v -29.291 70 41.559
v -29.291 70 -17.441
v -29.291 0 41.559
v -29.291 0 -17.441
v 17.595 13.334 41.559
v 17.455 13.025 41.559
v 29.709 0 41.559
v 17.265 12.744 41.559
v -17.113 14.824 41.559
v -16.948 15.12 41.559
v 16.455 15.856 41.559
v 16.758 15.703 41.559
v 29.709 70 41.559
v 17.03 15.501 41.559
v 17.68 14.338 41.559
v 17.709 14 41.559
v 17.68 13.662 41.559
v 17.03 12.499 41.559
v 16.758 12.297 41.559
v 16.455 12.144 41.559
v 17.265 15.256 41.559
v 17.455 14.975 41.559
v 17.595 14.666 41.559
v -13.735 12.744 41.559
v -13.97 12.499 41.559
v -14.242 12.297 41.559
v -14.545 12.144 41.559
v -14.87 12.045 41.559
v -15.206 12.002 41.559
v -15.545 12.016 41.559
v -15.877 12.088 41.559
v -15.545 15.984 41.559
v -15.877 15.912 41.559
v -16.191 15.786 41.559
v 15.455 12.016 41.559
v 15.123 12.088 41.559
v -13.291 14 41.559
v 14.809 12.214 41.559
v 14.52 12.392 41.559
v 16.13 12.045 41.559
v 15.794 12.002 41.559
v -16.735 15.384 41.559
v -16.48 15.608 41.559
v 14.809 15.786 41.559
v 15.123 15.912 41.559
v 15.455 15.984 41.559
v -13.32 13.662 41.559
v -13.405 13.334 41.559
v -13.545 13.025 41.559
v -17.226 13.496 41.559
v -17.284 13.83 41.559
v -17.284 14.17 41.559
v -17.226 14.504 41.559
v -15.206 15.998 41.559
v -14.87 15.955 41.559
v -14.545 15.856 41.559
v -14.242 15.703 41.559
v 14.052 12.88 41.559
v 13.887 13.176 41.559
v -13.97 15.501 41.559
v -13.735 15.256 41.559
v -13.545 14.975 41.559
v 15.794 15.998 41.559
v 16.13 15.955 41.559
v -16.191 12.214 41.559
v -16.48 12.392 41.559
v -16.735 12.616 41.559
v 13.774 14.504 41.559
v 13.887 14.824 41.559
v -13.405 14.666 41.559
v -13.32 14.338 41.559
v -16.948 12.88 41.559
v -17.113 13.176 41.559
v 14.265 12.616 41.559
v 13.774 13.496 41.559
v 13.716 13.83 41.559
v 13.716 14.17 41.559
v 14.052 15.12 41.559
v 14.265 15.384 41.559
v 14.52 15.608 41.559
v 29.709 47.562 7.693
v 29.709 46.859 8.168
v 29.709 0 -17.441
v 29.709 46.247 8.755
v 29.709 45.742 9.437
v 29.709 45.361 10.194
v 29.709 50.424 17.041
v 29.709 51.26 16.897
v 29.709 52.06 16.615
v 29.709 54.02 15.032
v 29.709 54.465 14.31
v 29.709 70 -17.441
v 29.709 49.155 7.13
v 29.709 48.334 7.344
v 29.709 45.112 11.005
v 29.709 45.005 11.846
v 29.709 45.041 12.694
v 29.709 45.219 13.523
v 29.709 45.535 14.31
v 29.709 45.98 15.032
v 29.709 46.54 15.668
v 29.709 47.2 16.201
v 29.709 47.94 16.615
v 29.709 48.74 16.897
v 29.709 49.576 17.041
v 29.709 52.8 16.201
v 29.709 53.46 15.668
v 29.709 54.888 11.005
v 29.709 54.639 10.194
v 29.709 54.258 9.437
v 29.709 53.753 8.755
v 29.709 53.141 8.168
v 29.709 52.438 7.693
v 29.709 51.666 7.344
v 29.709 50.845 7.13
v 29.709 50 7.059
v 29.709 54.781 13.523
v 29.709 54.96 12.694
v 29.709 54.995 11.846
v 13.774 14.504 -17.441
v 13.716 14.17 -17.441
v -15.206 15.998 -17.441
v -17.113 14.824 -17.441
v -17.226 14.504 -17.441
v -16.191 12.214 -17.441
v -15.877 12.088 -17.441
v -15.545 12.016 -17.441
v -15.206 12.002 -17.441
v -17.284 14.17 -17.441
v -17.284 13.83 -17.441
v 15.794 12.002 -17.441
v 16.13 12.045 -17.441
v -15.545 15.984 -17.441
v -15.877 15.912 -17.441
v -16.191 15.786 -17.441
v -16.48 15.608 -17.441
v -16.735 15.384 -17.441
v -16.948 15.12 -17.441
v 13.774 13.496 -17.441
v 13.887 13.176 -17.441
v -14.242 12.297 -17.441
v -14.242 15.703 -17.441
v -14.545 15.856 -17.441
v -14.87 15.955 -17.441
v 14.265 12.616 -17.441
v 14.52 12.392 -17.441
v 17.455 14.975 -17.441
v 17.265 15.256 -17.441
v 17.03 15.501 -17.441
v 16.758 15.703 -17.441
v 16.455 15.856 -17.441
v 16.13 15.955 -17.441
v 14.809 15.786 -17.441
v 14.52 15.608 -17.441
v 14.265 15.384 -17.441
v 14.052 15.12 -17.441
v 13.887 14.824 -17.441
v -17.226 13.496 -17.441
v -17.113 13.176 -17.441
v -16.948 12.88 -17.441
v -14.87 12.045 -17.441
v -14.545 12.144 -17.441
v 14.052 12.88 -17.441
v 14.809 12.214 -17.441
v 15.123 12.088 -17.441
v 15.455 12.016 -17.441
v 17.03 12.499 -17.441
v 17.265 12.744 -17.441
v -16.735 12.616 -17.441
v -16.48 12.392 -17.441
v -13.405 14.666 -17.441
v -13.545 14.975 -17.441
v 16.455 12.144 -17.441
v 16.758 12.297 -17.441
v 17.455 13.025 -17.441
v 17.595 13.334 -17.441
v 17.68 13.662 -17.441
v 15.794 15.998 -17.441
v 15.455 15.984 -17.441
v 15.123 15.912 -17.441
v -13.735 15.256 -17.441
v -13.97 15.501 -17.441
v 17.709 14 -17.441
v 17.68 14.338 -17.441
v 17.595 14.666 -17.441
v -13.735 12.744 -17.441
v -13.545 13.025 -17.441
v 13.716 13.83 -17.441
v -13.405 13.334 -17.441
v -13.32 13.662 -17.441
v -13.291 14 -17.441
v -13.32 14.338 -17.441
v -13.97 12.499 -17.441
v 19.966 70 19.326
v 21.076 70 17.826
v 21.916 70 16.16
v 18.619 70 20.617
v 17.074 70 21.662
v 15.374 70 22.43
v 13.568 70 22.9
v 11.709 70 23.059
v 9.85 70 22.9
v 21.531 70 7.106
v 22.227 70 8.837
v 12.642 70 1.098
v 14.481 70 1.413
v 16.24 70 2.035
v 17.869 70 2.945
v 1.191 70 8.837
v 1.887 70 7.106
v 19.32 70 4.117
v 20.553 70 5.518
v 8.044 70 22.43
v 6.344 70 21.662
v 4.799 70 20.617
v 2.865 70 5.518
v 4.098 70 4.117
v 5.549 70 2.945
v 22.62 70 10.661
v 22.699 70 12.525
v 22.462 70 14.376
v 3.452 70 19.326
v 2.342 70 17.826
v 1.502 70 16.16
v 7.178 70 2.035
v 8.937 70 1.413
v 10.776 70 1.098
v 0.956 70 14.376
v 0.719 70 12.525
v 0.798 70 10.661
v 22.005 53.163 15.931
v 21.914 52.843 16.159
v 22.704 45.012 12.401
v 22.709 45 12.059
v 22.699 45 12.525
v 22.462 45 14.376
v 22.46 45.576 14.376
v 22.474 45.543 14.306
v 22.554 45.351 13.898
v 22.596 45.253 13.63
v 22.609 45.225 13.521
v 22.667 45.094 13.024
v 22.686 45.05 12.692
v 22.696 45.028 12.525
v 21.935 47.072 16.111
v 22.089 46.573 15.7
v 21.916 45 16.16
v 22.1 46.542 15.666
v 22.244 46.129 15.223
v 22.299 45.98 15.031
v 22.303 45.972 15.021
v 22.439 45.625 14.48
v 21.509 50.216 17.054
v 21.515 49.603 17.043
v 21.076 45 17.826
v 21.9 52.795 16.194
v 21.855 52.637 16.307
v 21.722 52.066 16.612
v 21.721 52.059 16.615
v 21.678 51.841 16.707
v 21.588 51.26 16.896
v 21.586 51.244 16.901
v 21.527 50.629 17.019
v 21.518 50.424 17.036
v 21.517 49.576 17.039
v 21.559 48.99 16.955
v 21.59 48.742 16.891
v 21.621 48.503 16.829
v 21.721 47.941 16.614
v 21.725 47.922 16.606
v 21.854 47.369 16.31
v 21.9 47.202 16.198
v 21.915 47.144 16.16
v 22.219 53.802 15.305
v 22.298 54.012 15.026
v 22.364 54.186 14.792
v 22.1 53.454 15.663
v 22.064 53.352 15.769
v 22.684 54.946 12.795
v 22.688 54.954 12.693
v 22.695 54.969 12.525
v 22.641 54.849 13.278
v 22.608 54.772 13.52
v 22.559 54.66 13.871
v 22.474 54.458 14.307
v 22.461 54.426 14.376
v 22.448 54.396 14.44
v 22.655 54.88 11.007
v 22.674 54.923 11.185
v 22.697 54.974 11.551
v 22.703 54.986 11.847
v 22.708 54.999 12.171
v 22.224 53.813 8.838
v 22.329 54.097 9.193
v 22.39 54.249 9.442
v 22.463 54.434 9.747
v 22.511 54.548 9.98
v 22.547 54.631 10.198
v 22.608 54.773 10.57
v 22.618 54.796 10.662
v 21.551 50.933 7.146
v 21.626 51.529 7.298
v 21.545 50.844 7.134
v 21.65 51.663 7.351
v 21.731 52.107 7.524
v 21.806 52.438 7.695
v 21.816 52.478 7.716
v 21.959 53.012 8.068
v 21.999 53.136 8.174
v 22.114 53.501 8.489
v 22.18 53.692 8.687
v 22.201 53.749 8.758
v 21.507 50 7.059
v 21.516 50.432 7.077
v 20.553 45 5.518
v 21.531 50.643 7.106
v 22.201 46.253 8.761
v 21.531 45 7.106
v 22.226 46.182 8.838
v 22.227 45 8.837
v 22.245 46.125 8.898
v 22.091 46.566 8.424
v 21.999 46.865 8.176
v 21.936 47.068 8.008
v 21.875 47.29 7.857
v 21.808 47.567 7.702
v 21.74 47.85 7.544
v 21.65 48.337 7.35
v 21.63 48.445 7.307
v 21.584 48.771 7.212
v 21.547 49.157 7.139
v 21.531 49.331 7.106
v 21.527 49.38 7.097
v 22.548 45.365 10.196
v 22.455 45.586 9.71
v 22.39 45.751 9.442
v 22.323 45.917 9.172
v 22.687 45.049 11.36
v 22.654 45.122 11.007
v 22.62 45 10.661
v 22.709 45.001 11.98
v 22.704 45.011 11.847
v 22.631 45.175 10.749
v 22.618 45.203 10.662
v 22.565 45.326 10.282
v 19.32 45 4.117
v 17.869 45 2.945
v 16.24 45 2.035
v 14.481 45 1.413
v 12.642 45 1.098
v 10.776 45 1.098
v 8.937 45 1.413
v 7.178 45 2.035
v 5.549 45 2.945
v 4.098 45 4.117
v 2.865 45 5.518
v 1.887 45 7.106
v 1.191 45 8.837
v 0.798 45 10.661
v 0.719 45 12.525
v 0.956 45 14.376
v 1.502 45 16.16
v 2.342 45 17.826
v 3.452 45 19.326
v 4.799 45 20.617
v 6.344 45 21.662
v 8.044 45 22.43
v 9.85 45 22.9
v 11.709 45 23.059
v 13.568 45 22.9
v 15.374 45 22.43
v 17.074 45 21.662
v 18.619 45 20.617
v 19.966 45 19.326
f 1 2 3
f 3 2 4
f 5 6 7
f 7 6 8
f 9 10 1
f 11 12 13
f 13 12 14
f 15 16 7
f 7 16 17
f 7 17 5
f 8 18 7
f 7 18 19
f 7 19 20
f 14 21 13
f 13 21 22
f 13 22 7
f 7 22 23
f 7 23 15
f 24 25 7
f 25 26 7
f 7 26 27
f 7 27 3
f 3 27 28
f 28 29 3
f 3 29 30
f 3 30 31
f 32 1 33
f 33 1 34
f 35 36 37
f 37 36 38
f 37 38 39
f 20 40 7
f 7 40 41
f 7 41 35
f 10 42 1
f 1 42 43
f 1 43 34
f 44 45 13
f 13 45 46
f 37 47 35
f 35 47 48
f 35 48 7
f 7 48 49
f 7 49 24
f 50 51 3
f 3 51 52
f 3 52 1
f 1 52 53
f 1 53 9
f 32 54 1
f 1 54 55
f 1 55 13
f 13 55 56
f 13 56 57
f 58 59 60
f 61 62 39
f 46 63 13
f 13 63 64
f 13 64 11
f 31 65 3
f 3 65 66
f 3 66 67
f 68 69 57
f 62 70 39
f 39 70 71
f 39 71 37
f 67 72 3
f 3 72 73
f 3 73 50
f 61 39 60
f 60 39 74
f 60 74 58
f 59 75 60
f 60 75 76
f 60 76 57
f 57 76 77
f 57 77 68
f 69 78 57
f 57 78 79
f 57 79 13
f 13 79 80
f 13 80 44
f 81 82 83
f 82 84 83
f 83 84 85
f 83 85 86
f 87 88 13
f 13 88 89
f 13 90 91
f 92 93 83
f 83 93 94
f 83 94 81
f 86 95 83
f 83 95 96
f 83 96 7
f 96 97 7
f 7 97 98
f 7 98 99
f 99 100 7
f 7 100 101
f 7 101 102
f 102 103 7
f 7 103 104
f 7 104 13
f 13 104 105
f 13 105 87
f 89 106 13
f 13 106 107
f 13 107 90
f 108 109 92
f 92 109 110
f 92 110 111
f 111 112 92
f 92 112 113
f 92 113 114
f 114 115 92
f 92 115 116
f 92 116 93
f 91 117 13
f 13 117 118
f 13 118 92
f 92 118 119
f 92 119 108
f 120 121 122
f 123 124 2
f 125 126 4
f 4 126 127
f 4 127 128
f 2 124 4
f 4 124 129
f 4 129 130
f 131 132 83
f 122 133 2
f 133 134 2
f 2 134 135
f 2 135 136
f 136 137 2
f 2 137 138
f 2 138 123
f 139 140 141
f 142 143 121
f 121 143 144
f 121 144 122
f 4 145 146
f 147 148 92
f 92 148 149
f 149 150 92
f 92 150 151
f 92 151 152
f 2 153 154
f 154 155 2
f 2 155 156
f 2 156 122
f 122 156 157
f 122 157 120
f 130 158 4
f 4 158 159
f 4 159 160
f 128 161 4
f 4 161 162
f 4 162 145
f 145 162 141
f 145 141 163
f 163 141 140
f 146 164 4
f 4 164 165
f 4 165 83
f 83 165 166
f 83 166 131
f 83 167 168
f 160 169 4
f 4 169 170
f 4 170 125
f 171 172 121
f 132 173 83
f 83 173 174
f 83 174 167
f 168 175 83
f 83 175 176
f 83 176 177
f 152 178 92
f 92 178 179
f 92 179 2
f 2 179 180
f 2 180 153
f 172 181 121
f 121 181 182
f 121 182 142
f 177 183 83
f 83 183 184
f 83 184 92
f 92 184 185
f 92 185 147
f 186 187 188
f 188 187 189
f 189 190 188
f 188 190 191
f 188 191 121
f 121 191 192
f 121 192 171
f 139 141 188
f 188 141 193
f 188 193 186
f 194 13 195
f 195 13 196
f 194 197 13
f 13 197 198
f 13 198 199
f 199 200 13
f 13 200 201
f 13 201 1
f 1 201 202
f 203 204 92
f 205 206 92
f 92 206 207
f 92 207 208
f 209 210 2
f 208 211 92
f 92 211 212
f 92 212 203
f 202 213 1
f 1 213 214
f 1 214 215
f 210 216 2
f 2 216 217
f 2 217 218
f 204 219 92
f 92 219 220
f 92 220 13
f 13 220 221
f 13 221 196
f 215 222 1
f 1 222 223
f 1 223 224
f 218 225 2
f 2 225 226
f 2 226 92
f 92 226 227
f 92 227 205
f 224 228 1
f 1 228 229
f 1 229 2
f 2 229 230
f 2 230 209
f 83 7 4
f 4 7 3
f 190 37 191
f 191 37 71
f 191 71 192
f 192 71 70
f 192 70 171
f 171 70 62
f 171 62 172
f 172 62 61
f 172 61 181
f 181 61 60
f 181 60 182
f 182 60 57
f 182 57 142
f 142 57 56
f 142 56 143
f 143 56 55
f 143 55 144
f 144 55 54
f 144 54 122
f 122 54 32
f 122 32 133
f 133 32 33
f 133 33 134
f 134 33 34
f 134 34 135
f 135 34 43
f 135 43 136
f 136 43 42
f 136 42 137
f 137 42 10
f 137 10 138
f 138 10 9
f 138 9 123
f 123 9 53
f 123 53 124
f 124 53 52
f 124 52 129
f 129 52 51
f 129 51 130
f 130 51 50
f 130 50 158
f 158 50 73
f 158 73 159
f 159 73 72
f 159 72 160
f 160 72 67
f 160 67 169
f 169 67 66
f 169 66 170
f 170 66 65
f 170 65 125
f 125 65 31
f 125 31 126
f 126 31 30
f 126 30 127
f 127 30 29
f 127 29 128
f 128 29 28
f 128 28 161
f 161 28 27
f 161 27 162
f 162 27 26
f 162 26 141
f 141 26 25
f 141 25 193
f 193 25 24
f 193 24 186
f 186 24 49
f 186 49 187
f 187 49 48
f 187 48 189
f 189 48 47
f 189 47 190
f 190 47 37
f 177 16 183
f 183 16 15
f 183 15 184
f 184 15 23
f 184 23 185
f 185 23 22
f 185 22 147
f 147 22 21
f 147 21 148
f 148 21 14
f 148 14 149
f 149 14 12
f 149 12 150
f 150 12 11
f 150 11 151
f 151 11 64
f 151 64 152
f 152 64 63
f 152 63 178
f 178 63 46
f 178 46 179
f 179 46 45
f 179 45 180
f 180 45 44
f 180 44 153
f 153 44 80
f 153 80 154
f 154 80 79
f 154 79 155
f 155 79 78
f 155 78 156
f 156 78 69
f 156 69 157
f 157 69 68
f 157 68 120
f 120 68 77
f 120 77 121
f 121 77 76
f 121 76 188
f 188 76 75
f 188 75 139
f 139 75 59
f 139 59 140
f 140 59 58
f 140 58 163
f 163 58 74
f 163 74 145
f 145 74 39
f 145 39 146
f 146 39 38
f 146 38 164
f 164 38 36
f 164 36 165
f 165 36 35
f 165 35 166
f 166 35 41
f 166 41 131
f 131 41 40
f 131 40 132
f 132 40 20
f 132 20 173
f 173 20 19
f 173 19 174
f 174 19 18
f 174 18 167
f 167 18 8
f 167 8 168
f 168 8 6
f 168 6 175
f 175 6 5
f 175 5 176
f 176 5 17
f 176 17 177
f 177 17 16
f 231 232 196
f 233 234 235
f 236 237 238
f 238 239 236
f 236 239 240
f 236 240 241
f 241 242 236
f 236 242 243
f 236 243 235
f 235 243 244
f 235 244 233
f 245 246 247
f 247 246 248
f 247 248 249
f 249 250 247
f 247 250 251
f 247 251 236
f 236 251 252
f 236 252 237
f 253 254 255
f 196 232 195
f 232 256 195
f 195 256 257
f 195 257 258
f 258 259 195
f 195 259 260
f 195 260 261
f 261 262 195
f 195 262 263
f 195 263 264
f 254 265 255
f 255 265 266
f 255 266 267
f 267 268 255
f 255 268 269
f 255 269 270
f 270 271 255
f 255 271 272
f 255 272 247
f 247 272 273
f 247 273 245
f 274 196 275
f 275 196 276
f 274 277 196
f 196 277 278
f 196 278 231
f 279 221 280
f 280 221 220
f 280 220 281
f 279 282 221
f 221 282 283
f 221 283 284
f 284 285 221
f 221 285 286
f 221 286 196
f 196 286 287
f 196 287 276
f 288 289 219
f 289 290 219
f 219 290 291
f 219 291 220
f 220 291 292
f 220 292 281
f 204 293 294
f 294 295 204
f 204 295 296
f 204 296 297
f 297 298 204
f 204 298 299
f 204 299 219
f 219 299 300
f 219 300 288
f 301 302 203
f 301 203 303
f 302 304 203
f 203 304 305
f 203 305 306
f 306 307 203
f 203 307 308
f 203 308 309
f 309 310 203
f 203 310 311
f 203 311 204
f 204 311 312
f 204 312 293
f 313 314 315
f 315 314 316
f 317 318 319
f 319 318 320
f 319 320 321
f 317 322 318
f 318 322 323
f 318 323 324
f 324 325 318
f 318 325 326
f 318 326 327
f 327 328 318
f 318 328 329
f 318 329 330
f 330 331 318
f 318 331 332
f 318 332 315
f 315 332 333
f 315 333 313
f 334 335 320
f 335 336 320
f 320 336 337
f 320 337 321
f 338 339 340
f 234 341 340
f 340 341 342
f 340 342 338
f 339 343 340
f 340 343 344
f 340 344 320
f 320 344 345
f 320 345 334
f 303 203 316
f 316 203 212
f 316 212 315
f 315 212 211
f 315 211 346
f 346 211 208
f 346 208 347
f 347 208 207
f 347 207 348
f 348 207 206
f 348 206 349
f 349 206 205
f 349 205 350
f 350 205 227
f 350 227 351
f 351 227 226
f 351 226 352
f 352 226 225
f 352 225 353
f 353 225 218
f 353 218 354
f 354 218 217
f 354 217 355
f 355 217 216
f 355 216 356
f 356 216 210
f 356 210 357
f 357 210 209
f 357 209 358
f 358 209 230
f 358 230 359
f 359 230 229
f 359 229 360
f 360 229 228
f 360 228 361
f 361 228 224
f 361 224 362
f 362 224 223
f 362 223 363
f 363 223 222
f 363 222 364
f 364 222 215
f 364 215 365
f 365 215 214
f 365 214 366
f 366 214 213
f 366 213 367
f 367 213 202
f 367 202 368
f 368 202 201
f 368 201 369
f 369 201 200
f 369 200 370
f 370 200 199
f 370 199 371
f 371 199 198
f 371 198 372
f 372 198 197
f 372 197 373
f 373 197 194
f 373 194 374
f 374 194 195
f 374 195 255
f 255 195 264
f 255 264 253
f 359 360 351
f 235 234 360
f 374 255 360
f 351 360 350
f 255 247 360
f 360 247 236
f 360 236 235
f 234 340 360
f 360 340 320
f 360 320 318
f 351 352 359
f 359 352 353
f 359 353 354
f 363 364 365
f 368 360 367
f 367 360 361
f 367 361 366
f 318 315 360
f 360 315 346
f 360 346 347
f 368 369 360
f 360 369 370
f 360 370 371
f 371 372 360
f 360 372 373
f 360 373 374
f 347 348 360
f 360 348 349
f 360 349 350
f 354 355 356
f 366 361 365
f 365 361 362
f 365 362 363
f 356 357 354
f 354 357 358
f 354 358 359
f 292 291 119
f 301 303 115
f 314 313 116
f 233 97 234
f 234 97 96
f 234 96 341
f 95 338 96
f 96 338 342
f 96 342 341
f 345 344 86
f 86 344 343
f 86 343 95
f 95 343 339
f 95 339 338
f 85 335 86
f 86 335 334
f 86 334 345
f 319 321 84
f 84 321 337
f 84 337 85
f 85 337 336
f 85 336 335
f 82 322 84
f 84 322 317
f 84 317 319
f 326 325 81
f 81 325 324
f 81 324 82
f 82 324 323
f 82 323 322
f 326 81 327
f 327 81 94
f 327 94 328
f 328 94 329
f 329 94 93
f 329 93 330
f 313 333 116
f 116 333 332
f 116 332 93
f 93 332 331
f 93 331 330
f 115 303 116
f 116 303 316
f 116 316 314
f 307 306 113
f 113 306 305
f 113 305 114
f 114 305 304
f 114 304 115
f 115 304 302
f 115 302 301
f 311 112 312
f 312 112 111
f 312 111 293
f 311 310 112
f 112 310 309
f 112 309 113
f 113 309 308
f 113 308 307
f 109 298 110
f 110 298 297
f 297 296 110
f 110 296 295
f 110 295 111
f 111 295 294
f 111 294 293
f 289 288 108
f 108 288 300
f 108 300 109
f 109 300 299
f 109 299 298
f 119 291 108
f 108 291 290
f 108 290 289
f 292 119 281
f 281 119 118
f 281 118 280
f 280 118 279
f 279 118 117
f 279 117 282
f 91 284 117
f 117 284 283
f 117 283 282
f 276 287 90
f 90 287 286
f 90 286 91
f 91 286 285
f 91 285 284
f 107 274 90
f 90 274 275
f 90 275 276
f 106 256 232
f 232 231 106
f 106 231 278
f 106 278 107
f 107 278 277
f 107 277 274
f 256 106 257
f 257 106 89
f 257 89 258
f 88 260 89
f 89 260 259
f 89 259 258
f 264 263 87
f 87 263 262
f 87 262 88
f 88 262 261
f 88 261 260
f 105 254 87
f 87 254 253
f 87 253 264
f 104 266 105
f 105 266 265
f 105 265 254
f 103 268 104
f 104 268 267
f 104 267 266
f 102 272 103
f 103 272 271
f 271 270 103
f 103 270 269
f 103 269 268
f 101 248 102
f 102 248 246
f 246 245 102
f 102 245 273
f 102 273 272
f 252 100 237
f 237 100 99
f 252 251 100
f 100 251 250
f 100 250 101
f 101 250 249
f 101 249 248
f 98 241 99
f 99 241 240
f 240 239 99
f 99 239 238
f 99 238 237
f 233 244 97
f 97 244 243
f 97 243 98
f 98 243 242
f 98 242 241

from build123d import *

# Parameters (mm, degrees)
ESQUISSE1_W             = 59
ESQUISSE1_H             = 59
BOSS_EXTRU_1_DEPTH      = 70
ENL_V_MAT_EXTRU_1_REACH = 61
ESQUISSE2_R             = 2
ESQUISSE3_R             = 11
ENL_V_MAT_EXTRU_2_DEPTH = 25
ENL_V_MAT_EXTRU_3_REACH = 61
ESQUISSE4_R             = 5


with BuildPart() as part:
    # Esquisse1 → Boss.-Extru.1 (new body)
    with BuildSketch(Plane(origin=(0, 0, 0), x_dir=(1, 0, 0), z_dir=(0, 1, 0))):
        with Locations((0.20896915, -12.058522539)):
            Rectangle(ESQUISSE1_W, ESQUISSE1_H)
    extrude(amount=BOSS_EXTRU_1_DEPTH)

    # Esquisse2 → Enlèv. mat.-Extru.1 (cut, up to next)
    with BuildSketch(Plane.XY.offset(41.558522539), mode=Mode.PRIVATE) as enl_v_mat_extru_1_sk1:
        with Locations((-15.29103085, 14)):
            Circle(ESQUISSE2_R)
    enl_v_mat_extru_1_tool1 = extrude(enl_v_mat_extru_1_sk1.sketch, amount=-ENL_V_MAT_EXTRU_1_REACH, mode=Mode.PRIVATE) & part.part
    add(enl_v_mat_extru_1_tool1.solids().sort_by_distance((-15.291031, 14, 41.558523))[0], mode=Mode.SUBTRACT)
    # Esquisse2 → Enlèv. mat.-Extru.1 (cut, up to next)
    with BuildSketch(Plane.XY.offset(41.558522539), mode=Mode.PRIVATE) as enl_v_mat_extru_1_sk2:
        with Locations((15.70896915, 14)):
            Circle(ESQUISSE2_R)
    enl_v_mat_extru_1_tool2 = extrude(enl_v_mat_extru_1_sk2.sketch, amount=-ENL_V_MAT_EXTRU_1_REACH, mode=Mode.PRIVATE) & part.part
    add(enl_v_mat_extru_1_tool2.solids().sort_by_distance((15.708969, 14, 41.558523))[0], mode=Mode.SUBTRACT)

    # Esquisse3 → Enlèv. mat.-Extru.2 (cut)
    with BuildSketch(Plane(origin=(0, 70, 0), x_dir=(1, 0, 0), z_dir=(0, 1, 0))):
        with Locations((11.70896915, -12.058522539)):
            Circle(ESQUISSE3_R)
    extrude(amount=-ENL_V_MAT_EXTRU_2_DEPTH, mode=Mode.SUBTRACT)

    # Esquisse4 → Enlèv. mat.-Extru.3 (cut, up to next)
    with BuildSketch(Plane(origin=(29.70896915, 0, 0), x_dir=(0, 0, -1), z_dir=(1, 0, 0)), mode=Mode.PRIVATE) as enl_v_mat_extru_3_sk1:
        with Locations((-12.058522539, 50)):
            Circle(ESQUISSE4_R)
    enl_v_mat_extru_3_tool1 = extrude(enl_v_mat_extru_3_sk1.sketch, amount=-ENL_V_MAT_EXTRU_3_REACH, mode=Mode.PRIVATE) & part.part
    add(enl_v_mat_extru_3_tool1.solids().sort_by_distance((29.708969, 50, 12.058523))[0], mode=Mode.SUBTRACT)


solid = part.part
